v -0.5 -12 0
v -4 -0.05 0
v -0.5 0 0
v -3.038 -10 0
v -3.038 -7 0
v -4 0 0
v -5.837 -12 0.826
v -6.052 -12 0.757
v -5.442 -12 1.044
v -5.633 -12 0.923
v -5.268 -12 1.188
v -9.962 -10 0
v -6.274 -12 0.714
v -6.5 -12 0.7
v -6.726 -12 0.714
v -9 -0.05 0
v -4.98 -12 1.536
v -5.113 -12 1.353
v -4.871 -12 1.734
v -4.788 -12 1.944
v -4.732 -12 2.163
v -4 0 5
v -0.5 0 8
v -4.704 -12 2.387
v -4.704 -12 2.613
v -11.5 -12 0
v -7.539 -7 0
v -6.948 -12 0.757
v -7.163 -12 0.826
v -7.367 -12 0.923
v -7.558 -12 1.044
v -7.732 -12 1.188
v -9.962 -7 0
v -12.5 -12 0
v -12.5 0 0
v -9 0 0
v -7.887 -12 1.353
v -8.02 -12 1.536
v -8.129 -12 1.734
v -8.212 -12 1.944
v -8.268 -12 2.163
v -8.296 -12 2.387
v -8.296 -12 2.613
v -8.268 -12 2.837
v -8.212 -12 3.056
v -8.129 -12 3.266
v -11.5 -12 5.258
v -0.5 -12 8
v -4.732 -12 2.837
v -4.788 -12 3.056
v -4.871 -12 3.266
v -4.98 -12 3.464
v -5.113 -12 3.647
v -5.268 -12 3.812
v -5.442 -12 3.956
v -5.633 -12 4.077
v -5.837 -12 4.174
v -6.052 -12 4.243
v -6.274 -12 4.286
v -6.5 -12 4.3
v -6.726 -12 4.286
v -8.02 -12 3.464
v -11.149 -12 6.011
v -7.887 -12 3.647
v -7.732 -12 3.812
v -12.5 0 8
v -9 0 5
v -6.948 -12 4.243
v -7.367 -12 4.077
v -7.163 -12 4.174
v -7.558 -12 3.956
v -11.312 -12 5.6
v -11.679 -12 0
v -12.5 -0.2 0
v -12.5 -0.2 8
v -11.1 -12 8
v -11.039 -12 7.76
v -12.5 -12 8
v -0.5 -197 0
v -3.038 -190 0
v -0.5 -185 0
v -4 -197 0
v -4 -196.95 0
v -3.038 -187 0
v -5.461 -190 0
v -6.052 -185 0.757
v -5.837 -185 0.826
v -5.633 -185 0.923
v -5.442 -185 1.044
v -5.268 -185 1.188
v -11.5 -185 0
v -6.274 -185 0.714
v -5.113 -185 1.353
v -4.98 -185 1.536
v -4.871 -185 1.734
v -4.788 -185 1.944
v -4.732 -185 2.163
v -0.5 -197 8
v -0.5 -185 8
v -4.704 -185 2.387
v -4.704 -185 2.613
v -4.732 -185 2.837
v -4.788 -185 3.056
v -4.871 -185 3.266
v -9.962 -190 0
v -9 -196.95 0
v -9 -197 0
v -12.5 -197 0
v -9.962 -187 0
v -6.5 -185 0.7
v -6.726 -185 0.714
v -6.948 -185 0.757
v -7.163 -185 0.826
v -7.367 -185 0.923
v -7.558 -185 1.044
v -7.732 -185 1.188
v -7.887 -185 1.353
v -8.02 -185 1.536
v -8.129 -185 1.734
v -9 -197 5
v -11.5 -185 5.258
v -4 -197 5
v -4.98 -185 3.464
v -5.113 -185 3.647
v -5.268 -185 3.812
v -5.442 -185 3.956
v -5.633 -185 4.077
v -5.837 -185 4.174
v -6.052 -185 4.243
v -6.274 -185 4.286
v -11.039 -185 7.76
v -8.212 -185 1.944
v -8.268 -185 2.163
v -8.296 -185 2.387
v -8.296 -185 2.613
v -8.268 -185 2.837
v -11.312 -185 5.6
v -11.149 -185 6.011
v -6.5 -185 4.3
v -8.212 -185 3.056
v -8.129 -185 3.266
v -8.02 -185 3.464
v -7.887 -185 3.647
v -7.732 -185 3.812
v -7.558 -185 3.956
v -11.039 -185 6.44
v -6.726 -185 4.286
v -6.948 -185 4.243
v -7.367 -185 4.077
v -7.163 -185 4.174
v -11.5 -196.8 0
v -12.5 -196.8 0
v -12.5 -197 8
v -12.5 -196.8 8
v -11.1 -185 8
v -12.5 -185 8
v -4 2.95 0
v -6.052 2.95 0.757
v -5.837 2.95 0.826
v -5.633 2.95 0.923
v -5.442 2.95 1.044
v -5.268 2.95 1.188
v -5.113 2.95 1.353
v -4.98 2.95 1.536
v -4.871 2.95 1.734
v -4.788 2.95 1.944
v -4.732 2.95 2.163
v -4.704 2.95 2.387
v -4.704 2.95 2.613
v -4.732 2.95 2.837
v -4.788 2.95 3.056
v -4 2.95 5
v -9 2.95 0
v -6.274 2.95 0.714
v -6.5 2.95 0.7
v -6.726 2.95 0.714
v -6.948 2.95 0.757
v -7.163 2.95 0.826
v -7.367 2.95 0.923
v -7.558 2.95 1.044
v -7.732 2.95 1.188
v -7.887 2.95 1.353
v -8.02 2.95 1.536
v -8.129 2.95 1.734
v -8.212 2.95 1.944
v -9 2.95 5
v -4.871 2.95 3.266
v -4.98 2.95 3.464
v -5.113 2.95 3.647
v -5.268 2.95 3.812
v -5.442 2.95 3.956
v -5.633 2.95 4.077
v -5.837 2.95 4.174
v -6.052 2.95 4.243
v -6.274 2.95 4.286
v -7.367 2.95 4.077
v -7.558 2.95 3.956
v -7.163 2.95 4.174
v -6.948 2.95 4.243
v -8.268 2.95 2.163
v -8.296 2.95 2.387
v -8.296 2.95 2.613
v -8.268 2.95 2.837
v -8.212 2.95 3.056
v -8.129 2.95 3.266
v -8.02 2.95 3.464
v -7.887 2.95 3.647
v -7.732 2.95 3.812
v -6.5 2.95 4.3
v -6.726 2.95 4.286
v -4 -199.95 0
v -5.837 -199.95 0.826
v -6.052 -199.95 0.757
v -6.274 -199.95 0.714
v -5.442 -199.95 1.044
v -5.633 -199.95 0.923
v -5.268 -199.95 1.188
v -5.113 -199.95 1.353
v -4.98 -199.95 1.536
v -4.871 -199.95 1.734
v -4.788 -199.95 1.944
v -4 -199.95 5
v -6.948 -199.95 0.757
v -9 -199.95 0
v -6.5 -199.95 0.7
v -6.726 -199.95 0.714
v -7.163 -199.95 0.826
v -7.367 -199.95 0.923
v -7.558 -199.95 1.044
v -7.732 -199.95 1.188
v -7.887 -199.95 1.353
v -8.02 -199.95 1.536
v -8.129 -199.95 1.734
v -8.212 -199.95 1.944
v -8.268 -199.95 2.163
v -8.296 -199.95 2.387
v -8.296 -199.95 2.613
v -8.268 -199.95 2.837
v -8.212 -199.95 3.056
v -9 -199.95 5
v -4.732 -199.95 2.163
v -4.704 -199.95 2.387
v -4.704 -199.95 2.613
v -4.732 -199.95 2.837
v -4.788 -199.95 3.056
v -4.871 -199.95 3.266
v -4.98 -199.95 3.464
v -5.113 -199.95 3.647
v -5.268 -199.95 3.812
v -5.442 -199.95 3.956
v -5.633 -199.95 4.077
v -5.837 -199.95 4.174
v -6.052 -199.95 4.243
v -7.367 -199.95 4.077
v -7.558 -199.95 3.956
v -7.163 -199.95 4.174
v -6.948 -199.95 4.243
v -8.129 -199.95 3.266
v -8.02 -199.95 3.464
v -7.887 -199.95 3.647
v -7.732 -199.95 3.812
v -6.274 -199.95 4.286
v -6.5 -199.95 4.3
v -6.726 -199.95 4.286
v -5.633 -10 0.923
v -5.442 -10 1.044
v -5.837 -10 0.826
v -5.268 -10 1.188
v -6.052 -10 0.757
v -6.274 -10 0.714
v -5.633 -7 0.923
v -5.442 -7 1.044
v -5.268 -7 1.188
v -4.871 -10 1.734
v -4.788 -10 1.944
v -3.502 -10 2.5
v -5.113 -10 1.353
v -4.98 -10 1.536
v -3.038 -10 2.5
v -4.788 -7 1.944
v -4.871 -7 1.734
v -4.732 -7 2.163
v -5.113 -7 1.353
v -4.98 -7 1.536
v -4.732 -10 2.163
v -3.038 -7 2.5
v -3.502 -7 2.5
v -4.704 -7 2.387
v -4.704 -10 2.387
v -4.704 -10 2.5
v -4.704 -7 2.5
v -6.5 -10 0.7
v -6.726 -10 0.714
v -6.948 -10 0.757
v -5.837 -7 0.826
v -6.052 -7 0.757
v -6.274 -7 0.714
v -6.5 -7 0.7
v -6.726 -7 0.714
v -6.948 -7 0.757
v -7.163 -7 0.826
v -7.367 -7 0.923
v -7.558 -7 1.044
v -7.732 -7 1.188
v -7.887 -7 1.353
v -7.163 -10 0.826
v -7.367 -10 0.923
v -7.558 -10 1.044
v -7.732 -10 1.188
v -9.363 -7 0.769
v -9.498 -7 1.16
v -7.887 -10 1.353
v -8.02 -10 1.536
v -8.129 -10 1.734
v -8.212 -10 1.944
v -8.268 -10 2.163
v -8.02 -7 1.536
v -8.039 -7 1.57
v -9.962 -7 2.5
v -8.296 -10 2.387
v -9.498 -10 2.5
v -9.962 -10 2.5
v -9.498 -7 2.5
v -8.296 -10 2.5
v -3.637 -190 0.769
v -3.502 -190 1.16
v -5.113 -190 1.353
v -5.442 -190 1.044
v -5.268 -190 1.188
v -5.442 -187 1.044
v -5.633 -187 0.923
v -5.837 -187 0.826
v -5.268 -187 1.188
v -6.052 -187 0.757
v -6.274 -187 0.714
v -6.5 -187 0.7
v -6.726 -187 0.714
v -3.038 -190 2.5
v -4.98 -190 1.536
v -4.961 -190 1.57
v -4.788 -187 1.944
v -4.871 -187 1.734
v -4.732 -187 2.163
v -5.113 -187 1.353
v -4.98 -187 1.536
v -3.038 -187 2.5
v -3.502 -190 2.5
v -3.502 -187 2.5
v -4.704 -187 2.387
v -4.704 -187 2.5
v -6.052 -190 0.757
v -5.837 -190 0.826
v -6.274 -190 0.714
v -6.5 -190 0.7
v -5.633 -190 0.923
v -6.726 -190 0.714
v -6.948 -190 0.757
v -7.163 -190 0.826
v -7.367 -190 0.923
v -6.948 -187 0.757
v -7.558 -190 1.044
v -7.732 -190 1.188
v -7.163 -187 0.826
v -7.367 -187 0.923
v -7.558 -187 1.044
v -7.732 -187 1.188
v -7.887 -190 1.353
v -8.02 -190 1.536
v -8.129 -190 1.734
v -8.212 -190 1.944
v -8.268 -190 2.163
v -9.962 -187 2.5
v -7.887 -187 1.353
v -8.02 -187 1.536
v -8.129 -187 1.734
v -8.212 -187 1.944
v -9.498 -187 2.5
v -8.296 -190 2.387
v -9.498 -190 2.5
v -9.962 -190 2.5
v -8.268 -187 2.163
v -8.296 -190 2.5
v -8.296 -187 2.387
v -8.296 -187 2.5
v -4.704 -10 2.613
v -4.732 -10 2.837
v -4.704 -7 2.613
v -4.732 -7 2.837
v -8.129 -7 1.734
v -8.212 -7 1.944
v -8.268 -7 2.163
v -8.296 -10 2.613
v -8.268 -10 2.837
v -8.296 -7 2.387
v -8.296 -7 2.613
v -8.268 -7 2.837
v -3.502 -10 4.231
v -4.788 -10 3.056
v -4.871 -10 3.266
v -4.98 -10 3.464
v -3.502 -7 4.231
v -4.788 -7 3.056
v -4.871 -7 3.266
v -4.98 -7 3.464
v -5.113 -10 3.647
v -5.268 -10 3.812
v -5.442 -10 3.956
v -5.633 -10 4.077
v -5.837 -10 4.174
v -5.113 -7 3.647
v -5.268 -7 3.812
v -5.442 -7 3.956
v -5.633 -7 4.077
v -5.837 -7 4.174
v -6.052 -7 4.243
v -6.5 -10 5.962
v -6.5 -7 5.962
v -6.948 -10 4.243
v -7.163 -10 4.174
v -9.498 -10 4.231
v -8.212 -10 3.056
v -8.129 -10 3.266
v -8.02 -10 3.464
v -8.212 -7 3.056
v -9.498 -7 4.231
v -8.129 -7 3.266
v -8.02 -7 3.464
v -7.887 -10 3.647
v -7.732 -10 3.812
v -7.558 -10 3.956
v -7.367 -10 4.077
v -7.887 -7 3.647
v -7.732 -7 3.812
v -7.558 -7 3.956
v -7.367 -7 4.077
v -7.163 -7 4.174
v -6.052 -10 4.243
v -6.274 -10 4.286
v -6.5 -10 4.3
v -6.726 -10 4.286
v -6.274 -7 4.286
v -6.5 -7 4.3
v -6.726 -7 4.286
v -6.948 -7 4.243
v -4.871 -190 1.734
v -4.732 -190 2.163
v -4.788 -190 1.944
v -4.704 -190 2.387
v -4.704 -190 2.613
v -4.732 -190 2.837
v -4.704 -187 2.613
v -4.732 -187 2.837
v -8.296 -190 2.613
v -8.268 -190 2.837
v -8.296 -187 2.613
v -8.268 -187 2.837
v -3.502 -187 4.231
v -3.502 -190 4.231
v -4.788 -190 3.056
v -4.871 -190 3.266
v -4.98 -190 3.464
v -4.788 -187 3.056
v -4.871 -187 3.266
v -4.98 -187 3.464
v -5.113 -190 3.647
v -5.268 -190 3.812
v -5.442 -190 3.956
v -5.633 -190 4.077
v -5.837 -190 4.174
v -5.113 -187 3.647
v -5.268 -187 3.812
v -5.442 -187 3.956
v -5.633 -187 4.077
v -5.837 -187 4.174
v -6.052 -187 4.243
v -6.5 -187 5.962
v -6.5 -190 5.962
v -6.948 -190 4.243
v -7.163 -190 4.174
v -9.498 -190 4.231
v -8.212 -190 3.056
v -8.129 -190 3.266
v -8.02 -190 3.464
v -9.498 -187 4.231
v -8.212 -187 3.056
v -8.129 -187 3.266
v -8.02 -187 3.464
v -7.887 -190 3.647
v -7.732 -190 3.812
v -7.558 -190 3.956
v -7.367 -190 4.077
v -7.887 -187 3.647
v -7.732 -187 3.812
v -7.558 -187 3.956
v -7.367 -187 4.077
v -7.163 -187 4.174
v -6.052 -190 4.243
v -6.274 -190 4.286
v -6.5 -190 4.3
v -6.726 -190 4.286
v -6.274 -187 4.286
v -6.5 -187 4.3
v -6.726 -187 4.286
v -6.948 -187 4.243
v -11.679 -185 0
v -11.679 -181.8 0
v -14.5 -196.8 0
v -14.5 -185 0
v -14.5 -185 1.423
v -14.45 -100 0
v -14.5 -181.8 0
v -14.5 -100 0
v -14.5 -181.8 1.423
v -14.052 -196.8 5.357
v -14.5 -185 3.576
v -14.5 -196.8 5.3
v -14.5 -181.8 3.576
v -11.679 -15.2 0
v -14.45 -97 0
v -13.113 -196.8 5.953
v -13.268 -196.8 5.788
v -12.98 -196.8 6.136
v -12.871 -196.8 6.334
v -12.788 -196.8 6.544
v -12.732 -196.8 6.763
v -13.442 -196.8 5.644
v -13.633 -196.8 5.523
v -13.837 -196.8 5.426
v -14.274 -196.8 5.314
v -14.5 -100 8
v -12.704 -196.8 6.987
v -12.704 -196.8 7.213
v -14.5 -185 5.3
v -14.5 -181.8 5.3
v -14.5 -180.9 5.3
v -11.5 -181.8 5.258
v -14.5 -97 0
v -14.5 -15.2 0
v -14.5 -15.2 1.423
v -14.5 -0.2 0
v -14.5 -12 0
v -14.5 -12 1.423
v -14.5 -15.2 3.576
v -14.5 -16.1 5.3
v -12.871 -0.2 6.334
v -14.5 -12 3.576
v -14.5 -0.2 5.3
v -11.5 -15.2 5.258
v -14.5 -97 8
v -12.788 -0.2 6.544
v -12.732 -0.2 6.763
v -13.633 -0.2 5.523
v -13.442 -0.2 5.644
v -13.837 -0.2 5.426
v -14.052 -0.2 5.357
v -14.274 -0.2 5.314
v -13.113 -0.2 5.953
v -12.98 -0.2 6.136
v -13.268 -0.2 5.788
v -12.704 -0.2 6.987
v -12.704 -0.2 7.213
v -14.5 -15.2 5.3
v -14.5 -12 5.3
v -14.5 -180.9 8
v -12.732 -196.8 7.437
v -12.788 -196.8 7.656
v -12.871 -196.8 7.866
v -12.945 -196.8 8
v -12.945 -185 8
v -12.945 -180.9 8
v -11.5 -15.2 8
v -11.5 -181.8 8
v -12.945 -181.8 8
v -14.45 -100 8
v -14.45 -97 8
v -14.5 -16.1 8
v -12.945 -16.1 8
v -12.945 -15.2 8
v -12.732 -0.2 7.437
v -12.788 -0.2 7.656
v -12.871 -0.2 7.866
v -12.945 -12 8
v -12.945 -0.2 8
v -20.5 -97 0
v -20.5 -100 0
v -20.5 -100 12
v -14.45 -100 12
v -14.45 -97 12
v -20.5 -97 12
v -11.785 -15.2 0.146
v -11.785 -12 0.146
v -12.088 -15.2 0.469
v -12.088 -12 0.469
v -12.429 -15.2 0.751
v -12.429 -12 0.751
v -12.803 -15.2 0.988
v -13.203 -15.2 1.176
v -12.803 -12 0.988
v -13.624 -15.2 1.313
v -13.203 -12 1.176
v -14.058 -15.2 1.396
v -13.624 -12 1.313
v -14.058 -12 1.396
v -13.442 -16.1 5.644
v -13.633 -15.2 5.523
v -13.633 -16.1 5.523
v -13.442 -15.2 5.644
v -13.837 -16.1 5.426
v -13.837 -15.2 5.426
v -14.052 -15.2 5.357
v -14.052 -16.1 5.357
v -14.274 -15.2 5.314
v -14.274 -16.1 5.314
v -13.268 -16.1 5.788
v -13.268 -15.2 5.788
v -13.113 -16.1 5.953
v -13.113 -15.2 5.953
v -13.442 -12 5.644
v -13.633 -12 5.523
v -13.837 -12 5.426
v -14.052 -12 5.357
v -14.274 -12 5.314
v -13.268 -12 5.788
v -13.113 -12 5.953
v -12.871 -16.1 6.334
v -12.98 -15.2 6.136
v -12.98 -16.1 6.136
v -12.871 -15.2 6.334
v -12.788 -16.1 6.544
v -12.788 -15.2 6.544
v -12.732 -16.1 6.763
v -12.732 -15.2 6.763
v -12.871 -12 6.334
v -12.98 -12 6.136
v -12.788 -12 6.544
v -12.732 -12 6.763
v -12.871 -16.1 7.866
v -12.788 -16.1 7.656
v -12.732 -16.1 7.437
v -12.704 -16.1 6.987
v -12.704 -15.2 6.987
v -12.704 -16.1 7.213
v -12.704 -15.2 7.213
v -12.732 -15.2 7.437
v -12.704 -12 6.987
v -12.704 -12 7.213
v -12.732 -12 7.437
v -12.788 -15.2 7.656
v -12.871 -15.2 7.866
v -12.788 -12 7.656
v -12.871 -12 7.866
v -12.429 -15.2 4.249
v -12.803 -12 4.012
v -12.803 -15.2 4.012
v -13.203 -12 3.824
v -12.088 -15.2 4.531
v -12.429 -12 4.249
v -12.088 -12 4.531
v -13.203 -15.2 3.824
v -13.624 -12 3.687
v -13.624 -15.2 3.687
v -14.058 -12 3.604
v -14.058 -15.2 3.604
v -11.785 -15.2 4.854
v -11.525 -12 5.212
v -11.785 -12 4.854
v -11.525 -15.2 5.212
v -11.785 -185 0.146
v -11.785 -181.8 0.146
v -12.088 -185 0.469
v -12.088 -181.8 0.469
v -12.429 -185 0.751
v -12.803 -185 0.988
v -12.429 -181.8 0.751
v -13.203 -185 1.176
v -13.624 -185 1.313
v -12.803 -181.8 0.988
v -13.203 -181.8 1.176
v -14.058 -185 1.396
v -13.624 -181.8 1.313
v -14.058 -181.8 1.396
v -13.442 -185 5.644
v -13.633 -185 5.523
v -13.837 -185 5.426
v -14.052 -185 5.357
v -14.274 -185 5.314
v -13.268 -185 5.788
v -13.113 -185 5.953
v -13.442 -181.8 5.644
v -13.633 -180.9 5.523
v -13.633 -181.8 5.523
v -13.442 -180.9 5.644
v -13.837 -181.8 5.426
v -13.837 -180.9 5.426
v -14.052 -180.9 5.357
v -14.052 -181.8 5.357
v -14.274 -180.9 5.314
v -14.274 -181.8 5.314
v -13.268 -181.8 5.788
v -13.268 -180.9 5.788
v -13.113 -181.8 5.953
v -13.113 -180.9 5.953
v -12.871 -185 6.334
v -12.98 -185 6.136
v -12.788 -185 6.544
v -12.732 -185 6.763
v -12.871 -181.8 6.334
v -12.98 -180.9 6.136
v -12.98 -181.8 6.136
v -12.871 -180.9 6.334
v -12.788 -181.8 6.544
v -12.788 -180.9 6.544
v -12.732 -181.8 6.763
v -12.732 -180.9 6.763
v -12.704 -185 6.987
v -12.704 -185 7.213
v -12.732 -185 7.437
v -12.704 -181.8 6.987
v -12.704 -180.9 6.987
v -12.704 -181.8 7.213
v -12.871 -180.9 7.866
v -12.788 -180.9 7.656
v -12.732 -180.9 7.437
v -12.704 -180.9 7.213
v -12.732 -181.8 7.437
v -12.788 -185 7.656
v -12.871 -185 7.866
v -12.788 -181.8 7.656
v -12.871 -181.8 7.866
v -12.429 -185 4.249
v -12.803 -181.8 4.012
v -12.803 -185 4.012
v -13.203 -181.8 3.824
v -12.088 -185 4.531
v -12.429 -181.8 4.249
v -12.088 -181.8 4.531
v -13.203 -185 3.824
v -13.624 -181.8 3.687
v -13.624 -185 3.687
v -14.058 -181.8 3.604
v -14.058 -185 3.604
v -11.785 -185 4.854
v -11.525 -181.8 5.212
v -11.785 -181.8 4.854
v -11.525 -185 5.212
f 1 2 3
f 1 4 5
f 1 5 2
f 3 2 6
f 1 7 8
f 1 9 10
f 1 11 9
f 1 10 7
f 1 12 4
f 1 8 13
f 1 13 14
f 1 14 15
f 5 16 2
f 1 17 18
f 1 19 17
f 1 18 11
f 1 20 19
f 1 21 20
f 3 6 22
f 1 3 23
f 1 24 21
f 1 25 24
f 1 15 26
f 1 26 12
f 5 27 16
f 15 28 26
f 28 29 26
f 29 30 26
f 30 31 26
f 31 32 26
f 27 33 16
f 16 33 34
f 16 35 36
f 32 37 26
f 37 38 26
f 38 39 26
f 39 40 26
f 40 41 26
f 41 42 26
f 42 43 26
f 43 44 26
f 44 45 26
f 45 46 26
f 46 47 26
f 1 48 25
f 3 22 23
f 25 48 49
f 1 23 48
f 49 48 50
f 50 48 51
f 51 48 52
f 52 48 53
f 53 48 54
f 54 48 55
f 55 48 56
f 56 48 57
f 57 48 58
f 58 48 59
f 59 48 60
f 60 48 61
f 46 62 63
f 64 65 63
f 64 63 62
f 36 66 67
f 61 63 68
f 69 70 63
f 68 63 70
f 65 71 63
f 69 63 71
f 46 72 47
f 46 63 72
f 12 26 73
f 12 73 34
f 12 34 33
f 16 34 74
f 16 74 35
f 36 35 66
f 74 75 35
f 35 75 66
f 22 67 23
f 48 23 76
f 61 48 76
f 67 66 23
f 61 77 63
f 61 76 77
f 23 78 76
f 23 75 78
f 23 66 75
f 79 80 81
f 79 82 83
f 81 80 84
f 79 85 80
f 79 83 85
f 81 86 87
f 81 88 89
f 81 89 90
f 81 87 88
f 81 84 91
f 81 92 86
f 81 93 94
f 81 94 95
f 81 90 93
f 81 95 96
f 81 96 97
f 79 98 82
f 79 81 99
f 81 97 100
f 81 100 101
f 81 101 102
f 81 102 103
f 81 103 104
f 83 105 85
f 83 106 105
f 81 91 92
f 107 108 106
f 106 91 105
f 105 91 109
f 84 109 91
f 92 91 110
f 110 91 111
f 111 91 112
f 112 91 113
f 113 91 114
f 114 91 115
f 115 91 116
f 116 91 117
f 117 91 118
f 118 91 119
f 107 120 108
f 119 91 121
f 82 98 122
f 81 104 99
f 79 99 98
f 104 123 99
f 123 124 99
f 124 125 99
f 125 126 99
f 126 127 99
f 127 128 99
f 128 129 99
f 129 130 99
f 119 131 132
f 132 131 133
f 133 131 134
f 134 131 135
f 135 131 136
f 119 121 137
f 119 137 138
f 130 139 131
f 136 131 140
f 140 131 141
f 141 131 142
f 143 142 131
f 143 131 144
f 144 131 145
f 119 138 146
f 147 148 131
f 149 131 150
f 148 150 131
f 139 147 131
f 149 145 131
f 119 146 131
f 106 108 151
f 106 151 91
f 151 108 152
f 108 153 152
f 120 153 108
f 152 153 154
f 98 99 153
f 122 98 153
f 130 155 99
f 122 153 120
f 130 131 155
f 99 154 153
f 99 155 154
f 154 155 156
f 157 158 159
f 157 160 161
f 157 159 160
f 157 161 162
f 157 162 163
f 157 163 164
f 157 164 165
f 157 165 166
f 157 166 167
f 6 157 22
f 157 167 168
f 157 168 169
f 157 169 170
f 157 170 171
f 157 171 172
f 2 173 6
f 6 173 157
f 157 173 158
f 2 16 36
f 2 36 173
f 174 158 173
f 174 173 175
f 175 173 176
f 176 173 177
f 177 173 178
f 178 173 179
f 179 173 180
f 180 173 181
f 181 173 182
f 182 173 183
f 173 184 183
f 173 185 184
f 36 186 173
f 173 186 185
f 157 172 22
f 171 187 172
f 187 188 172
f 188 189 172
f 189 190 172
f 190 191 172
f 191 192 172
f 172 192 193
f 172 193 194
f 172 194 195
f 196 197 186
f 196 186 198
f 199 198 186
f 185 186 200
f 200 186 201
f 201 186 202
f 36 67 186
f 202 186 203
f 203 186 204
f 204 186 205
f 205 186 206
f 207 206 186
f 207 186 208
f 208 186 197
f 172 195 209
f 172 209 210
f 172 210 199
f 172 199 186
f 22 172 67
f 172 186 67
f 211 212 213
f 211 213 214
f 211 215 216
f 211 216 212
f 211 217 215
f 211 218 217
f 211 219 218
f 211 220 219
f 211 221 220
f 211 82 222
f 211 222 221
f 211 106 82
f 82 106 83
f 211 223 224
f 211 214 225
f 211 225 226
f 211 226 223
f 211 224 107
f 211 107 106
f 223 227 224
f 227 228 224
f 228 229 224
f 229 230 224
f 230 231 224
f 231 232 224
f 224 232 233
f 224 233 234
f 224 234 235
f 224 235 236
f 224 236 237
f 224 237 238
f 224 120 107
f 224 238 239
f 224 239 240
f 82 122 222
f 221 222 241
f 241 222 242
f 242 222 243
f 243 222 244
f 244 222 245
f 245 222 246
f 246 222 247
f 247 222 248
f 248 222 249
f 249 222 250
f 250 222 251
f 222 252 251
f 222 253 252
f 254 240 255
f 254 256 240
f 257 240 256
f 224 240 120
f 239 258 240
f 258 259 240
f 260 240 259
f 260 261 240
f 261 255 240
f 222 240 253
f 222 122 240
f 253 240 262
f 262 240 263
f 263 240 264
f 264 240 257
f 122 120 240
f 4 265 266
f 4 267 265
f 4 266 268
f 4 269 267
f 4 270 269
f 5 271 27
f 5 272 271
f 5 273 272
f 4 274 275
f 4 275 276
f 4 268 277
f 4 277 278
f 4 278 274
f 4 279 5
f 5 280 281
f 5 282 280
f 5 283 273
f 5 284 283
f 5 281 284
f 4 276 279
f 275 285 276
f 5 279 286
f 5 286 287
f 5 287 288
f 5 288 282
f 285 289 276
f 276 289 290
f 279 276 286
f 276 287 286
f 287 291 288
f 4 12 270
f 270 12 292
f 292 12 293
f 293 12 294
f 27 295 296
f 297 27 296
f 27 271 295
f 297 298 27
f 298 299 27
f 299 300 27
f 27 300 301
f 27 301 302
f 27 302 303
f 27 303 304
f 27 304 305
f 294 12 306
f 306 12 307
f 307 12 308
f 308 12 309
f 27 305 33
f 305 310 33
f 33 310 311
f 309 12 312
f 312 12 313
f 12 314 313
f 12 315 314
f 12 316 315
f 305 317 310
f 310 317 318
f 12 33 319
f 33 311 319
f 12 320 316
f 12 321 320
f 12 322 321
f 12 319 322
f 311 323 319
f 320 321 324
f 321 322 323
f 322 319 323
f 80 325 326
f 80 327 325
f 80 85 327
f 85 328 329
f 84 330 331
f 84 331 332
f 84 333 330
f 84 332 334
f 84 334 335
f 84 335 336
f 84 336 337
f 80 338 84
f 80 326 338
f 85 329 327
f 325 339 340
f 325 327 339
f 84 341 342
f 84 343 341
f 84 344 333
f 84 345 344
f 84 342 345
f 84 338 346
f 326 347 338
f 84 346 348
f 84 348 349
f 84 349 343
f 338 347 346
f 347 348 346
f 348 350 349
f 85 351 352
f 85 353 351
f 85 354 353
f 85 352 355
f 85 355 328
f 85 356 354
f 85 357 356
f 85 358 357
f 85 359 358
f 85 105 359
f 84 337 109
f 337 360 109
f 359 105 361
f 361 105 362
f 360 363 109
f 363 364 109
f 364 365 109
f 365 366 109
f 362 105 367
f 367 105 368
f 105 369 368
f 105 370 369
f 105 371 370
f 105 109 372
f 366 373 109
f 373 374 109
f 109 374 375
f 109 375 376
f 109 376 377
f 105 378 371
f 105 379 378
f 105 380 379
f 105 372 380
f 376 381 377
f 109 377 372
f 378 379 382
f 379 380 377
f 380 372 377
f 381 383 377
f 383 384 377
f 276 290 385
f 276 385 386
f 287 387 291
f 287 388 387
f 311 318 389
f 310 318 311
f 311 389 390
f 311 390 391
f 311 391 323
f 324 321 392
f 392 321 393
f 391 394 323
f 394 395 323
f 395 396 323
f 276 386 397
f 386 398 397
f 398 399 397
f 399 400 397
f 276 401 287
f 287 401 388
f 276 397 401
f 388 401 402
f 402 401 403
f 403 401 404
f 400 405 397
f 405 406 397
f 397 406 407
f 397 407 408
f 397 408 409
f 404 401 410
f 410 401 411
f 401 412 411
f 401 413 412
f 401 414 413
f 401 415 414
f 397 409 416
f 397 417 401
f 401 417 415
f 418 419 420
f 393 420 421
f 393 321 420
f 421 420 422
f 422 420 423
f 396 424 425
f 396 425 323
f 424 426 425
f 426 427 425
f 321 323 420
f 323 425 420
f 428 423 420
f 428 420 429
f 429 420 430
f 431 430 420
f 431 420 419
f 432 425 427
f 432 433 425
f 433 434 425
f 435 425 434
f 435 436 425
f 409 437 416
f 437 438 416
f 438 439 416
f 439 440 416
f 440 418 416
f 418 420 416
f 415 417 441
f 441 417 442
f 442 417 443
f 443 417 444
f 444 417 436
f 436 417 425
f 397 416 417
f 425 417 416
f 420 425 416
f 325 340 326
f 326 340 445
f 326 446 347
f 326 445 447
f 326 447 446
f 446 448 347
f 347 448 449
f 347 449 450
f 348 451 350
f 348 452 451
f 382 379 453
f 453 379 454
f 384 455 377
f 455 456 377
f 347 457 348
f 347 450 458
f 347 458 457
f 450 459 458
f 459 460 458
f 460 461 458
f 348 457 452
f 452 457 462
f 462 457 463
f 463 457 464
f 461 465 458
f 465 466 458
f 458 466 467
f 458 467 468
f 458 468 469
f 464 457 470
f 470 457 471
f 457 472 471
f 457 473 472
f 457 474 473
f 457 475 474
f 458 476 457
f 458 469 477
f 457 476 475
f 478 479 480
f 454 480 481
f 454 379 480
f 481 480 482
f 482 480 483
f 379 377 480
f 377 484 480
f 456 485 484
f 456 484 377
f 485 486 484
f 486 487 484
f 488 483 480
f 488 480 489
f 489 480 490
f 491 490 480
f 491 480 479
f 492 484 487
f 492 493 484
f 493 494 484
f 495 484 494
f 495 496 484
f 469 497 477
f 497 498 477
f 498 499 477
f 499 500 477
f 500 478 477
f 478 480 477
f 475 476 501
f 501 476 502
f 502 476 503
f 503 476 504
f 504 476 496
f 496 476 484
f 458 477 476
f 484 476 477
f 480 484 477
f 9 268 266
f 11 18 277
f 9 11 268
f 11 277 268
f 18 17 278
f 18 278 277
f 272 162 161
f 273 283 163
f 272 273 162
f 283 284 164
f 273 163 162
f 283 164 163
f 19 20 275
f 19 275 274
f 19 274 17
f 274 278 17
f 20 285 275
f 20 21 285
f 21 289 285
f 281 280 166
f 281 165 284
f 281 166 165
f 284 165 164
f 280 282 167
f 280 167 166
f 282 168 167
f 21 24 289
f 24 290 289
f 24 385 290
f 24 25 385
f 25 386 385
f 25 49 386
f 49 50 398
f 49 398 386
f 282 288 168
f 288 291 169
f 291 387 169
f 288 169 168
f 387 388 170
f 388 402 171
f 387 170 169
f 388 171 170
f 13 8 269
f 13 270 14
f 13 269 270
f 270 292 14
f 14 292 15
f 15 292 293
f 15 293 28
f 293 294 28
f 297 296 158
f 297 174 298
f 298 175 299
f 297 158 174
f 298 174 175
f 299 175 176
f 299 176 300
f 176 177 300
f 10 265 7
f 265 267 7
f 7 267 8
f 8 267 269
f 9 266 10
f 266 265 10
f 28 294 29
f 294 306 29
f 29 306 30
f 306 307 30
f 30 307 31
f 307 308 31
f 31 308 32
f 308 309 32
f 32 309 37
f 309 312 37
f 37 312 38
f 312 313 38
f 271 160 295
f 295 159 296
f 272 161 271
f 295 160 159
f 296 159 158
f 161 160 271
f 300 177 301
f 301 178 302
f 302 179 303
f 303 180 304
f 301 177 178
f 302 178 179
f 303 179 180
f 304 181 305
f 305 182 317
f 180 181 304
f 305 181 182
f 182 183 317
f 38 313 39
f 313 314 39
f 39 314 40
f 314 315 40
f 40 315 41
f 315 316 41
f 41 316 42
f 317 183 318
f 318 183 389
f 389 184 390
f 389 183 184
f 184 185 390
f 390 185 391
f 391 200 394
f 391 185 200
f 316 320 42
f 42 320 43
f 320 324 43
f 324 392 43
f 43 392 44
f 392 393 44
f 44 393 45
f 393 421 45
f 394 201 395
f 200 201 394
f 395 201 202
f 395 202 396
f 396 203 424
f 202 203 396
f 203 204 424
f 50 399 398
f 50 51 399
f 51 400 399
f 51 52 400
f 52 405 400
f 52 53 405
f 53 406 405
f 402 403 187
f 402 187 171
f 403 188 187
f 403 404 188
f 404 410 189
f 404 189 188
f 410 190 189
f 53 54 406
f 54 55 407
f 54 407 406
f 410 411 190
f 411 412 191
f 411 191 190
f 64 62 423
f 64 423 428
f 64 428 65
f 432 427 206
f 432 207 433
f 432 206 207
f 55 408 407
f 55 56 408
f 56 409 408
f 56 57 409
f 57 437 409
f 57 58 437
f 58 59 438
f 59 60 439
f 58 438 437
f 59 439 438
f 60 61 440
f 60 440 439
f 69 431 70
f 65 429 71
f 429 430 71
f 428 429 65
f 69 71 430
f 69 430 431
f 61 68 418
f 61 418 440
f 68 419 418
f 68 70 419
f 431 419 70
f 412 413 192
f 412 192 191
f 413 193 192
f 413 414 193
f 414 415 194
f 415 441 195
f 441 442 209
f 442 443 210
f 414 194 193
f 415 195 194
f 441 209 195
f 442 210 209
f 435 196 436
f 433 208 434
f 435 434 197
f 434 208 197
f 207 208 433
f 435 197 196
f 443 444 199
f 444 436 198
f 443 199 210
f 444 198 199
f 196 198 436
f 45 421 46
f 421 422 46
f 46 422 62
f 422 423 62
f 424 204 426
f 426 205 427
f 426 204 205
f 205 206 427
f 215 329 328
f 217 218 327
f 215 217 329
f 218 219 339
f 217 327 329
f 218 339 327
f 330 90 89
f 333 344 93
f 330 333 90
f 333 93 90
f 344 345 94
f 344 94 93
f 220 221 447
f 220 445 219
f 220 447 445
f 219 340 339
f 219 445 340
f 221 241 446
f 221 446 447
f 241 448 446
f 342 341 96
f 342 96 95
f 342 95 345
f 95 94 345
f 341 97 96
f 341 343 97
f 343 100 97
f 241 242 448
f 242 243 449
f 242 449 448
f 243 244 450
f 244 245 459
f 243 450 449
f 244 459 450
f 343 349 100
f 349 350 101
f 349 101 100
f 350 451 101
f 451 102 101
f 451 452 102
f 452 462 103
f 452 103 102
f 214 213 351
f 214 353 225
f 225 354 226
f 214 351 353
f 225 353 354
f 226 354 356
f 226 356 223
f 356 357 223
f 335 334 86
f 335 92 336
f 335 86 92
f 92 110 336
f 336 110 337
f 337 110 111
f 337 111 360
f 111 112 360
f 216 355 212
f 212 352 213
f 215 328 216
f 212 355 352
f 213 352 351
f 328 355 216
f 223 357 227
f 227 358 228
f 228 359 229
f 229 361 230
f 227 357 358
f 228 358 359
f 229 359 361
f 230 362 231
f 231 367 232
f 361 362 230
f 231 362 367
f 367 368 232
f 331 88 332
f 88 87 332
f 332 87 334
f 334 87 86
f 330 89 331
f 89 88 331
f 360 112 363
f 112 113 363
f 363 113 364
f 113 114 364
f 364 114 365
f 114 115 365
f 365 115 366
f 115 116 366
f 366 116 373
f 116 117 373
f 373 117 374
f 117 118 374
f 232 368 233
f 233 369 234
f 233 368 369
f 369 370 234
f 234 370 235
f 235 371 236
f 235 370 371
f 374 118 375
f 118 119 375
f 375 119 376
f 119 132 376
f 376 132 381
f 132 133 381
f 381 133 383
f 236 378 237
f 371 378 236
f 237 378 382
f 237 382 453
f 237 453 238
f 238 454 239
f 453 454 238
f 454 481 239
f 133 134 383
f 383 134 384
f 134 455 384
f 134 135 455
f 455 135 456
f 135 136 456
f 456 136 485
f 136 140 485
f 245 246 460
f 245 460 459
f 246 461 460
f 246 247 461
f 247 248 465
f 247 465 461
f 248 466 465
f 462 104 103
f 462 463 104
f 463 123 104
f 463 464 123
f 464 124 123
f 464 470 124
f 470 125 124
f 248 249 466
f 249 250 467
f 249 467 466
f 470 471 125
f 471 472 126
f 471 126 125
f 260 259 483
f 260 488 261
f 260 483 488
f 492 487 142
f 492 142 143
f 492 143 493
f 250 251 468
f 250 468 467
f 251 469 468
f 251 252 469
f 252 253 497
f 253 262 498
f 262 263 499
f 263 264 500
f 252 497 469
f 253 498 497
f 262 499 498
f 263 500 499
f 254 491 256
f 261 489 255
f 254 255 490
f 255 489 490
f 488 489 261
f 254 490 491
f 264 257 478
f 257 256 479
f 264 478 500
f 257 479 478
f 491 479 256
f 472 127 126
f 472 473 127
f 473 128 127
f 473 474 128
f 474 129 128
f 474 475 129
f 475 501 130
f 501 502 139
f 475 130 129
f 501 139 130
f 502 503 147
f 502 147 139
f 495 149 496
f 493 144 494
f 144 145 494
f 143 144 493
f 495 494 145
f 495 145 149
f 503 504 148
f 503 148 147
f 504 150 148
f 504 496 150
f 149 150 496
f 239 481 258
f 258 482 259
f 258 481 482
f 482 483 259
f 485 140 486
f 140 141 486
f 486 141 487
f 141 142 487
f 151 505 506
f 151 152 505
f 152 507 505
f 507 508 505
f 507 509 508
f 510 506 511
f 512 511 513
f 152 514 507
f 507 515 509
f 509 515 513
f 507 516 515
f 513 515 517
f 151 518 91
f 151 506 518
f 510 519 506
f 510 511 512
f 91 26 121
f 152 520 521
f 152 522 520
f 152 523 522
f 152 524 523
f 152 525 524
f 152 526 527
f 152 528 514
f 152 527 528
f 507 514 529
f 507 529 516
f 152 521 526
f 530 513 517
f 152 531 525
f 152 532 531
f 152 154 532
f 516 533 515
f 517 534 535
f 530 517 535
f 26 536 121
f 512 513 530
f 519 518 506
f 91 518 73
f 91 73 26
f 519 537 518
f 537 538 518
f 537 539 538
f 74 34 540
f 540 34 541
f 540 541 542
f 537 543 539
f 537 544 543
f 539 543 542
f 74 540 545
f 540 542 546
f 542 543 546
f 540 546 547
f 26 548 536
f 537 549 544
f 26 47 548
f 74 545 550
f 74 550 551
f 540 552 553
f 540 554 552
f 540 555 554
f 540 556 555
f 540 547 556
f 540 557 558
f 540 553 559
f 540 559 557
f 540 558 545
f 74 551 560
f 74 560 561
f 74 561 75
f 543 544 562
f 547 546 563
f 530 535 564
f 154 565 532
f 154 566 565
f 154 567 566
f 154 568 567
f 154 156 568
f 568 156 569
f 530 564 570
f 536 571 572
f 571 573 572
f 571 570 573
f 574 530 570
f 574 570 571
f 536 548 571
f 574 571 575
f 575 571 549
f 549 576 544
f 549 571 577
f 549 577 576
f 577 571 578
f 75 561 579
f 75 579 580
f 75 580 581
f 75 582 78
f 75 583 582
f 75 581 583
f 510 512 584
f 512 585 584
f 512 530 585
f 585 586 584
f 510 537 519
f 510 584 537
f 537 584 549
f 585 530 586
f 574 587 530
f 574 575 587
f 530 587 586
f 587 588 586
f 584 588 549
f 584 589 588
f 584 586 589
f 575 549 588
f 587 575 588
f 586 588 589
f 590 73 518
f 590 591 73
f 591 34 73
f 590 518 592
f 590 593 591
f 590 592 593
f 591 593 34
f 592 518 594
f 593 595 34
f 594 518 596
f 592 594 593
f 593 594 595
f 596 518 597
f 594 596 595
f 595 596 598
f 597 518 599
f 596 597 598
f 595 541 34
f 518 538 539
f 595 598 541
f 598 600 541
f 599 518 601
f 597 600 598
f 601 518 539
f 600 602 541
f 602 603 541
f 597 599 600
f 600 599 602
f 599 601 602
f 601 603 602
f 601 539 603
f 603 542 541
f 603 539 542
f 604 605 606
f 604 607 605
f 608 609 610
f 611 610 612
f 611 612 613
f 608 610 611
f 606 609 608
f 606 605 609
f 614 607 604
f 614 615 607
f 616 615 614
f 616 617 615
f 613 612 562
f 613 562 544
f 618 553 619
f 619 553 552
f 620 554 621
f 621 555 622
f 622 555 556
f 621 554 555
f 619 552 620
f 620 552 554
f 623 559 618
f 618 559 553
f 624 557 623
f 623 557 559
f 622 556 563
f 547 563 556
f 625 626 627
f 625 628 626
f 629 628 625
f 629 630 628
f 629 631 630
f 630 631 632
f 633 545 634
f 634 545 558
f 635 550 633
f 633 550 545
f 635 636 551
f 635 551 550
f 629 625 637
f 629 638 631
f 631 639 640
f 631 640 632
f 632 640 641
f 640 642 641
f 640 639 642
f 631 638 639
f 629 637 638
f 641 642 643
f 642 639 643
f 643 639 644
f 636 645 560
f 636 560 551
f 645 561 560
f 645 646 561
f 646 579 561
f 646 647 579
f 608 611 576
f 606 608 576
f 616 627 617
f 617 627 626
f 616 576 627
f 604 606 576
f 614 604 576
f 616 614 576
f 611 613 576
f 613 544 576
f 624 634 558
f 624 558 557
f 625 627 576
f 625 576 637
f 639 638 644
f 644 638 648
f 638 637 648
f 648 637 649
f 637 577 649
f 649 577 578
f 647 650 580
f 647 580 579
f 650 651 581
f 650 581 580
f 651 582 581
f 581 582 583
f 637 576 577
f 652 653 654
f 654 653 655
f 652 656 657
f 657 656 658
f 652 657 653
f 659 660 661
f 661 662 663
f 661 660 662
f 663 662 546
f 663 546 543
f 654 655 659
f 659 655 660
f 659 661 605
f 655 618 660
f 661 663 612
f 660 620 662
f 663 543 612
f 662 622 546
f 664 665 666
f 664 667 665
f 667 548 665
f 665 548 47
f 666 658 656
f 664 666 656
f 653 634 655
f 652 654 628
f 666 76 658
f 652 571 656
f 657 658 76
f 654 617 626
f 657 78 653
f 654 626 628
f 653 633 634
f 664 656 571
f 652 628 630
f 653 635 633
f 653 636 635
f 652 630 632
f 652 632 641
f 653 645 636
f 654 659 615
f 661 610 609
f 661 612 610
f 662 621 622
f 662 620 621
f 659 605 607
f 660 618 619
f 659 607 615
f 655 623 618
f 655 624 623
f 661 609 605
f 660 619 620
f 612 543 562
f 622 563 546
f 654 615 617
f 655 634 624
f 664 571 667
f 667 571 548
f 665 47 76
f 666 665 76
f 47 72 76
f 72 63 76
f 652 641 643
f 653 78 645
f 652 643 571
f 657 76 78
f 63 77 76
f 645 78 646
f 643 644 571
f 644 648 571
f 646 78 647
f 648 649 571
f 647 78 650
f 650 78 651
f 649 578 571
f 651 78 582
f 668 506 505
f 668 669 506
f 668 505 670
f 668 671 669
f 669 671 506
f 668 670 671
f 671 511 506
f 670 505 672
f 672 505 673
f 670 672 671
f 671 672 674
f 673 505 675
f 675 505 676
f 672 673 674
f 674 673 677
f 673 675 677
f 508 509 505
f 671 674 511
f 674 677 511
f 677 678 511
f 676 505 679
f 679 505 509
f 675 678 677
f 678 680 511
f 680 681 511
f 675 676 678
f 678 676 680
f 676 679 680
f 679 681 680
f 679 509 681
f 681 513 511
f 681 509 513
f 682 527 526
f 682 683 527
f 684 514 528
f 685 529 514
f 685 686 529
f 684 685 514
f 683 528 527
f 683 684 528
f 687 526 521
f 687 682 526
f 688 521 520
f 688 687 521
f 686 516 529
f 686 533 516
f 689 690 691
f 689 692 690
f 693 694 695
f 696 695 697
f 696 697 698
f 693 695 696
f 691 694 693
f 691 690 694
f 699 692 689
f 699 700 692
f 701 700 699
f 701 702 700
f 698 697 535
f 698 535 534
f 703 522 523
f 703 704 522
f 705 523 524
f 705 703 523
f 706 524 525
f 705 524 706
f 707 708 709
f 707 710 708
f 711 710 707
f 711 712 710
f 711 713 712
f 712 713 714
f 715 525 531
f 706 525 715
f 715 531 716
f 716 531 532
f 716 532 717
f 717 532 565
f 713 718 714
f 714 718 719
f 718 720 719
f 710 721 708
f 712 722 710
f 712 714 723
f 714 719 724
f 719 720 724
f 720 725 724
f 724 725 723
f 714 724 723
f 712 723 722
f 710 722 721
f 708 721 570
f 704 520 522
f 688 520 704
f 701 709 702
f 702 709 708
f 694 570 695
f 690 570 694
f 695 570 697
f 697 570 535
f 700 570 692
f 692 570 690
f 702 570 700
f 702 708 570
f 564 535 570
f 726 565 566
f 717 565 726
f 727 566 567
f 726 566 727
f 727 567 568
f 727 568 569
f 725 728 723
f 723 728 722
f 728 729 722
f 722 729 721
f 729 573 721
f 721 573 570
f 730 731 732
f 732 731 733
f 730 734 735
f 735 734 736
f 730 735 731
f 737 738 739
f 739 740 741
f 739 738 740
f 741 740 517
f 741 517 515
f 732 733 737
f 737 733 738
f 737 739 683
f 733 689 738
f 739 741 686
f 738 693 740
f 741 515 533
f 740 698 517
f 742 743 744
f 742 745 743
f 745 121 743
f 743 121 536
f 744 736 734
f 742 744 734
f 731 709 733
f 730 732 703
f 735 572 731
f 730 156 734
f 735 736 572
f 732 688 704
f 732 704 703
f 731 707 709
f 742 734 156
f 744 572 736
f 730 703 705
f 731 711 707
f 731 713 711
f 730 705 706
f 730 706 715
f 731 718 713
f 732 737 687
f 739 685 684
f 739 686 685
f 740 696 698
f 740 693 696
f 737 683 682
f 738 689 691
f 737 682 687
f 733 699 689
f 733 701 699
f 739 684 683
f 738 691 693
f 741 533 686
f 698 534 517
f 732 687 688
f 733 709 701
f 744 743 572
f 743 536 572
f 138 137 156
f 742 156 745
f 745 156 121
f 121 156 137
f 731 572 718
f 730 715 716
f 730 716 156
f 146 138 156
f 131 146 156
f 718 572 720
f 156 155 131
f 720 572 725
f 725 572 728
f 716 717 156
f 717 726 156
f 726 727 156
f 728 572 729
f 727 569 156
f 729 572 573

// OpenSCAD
$fn = 50;

difference() {
	union() {
		translate(v = [0, 0, 0]) {
			rotate(a = [0, 0, 0]) {
				difference() {
					union() {
						translate(v = [0, 0, 2.5]) {
							rotate(a = [0, -90, 0]) {
								difference() {
									union() {
										translate(v = [0, 0, 0]) {
											rotate(a = [0, 0, 0]) {
												difference() {
													union() {
														translate(v = [-2.5, -12.0, 0.5]) {
															cube(size = [8.0, 12.0, 12.0]);
														}
														translate(v = [-2.5, -0.05, 4.0]) {
															cube(size = [5.0, 3.0, 5.0]);
														}
													}
													union() {
														translate(v = [0, -7.0, 6.5]) {
															rotate(a = [90, 0, 0]) {
																difference() {
																	union() {
																		translate(v = [-20.0, -3.4619999999999997, 0]) {
																			cube(size = [20, 6.9239999999999995, 3]);
																		}
																		linear_extrude(height = 3) {
																			polygon(points = [[3.4619999999999997, 0.0], [1.7310000000000003, 2.9981799479017264], [-1.7309999999999992, 2.9981799479017264], [-3.4619999999999997, 4.2397272186481365e-16], [-1.7310000000000014, -2.998179947901726], [1.7309999999999977, -2.9981799479017277]]);
																		}
																	}
																	union();
																}
															}
														}
														translate(v = [0, 3.0500000000000003, 6.5]) {
															rotate(a = [90, 0, 0]) {
																cylinder(h = 22.95, r = 1.8);
															}
														}
													}
												}
											}
										}
										translate(v = [0, -197.0, 13.0]) {
											rotate(a = [180, 0, 0]) {
												difference() {
													union() {
														translate(v = [-2.5, -12.0, 0.5]) {
															cube(size = [8.0, 12.0, 12.0]);
														}
														translate(v = [-2.5, -0.05, 4.0]) {
															cube(size = [5.0, 3.0, 5.0]);
														}
													}
													union() {
														translate(v = [0, -7.0, 6.5]) {
															rotate(a = [90, 0, 0]) {
																difference() {
																	union() {
																		translate(v = [-20.0, -3.4619999999999997, 0]) {
																			cube(size = [20, 6.9239999999999995, 3]);
																		}
																		linear_extrude(height = 3) {
																			polygon(points = [[3.4619999999999997, 0.0], [1.7310000000000003, 2.9981799479017264], [-1.7309999999999992, 2.9981799479017264], [-3.4619999999999997, 4.2397272186481365e-16], [-1.7310000000000014, -2.998179947901726], [1.7309999999999977, -2.9981799479017277]]);
																		}
																	}
																	union();
																}
															}
														}
														translate(v = [0, 3.0500000000000003, 6.5]) {
															rotate(a = [90, 0, 0]) {
																cylinder(h = 22.95, r = 1.8);
															}
														}
													}
												}
											}
										}
										translate(v = [-2.5, -196.8, 11.5]) {
											cube(size = [8.0, 196.6, 3.0]);
										}
										translate(v = [-2.5, -100.0, 14.45]) {
											cube(size = [12.0, 3.0, 6.05]);
										}
									}
									union() {
										translate(v = [-4.6000000000000085, 0.1, 14.5]) {
											rotate(a = [90, 0, 0]) {
												cylinder(h = 16.2, r = 1.8);
											}
										}
										translate(v = [-4.6000000000000085, -12.0, 14.5]) {
											rotate(a = [90, 0, 0]) {
												cylinder(h = 3.2, r = 3.5235);
											}
										}
										translate(v = [4.6000000000000085, 0.1, 14.5]) {
											rotate(a = [90, 0, 0]) {
												cylinder(h = 16.2, r = 1.8);
											}
										}
										translate(v = [4.6000000000000085, -12.0, 14.5]) {
											rotate(a = [90, 0, 0]) {
												cylinder(h = 3.2, r = 3.5235);
											}
										}
										translate(v = [-4.6000000000000085, -197.1, 14.5]) {
											rotate(a = [-90, 0, 0]) {
												cylinder(h = 16.2, r = 1.8);
											}
										}
										translate(v = [-4.6000000000000085, -185.0, 14.5]) {
											rotate(a = [-90, 0, 0]) {
												cylinder(h = 3.2, r = 3.5235);
											}
										}
										translate(v = [4.6000000000000085, -197.1, 14.5]) {
											rotate(a = [-90, 0, 0]) {
												cylinder(h = 16.2, r = 1.8);
											}
										}
										translate(v = [4.6000000000000085, -185.0, 14.5]) {
											rotate(a = [-90, 0, 0]) {
												cylinder(h = 3.2, r = 3.5235);
											}
										}
									}
								}
							}
						}
					}
					union();
				}
			}
		}
	}
	union();
}
